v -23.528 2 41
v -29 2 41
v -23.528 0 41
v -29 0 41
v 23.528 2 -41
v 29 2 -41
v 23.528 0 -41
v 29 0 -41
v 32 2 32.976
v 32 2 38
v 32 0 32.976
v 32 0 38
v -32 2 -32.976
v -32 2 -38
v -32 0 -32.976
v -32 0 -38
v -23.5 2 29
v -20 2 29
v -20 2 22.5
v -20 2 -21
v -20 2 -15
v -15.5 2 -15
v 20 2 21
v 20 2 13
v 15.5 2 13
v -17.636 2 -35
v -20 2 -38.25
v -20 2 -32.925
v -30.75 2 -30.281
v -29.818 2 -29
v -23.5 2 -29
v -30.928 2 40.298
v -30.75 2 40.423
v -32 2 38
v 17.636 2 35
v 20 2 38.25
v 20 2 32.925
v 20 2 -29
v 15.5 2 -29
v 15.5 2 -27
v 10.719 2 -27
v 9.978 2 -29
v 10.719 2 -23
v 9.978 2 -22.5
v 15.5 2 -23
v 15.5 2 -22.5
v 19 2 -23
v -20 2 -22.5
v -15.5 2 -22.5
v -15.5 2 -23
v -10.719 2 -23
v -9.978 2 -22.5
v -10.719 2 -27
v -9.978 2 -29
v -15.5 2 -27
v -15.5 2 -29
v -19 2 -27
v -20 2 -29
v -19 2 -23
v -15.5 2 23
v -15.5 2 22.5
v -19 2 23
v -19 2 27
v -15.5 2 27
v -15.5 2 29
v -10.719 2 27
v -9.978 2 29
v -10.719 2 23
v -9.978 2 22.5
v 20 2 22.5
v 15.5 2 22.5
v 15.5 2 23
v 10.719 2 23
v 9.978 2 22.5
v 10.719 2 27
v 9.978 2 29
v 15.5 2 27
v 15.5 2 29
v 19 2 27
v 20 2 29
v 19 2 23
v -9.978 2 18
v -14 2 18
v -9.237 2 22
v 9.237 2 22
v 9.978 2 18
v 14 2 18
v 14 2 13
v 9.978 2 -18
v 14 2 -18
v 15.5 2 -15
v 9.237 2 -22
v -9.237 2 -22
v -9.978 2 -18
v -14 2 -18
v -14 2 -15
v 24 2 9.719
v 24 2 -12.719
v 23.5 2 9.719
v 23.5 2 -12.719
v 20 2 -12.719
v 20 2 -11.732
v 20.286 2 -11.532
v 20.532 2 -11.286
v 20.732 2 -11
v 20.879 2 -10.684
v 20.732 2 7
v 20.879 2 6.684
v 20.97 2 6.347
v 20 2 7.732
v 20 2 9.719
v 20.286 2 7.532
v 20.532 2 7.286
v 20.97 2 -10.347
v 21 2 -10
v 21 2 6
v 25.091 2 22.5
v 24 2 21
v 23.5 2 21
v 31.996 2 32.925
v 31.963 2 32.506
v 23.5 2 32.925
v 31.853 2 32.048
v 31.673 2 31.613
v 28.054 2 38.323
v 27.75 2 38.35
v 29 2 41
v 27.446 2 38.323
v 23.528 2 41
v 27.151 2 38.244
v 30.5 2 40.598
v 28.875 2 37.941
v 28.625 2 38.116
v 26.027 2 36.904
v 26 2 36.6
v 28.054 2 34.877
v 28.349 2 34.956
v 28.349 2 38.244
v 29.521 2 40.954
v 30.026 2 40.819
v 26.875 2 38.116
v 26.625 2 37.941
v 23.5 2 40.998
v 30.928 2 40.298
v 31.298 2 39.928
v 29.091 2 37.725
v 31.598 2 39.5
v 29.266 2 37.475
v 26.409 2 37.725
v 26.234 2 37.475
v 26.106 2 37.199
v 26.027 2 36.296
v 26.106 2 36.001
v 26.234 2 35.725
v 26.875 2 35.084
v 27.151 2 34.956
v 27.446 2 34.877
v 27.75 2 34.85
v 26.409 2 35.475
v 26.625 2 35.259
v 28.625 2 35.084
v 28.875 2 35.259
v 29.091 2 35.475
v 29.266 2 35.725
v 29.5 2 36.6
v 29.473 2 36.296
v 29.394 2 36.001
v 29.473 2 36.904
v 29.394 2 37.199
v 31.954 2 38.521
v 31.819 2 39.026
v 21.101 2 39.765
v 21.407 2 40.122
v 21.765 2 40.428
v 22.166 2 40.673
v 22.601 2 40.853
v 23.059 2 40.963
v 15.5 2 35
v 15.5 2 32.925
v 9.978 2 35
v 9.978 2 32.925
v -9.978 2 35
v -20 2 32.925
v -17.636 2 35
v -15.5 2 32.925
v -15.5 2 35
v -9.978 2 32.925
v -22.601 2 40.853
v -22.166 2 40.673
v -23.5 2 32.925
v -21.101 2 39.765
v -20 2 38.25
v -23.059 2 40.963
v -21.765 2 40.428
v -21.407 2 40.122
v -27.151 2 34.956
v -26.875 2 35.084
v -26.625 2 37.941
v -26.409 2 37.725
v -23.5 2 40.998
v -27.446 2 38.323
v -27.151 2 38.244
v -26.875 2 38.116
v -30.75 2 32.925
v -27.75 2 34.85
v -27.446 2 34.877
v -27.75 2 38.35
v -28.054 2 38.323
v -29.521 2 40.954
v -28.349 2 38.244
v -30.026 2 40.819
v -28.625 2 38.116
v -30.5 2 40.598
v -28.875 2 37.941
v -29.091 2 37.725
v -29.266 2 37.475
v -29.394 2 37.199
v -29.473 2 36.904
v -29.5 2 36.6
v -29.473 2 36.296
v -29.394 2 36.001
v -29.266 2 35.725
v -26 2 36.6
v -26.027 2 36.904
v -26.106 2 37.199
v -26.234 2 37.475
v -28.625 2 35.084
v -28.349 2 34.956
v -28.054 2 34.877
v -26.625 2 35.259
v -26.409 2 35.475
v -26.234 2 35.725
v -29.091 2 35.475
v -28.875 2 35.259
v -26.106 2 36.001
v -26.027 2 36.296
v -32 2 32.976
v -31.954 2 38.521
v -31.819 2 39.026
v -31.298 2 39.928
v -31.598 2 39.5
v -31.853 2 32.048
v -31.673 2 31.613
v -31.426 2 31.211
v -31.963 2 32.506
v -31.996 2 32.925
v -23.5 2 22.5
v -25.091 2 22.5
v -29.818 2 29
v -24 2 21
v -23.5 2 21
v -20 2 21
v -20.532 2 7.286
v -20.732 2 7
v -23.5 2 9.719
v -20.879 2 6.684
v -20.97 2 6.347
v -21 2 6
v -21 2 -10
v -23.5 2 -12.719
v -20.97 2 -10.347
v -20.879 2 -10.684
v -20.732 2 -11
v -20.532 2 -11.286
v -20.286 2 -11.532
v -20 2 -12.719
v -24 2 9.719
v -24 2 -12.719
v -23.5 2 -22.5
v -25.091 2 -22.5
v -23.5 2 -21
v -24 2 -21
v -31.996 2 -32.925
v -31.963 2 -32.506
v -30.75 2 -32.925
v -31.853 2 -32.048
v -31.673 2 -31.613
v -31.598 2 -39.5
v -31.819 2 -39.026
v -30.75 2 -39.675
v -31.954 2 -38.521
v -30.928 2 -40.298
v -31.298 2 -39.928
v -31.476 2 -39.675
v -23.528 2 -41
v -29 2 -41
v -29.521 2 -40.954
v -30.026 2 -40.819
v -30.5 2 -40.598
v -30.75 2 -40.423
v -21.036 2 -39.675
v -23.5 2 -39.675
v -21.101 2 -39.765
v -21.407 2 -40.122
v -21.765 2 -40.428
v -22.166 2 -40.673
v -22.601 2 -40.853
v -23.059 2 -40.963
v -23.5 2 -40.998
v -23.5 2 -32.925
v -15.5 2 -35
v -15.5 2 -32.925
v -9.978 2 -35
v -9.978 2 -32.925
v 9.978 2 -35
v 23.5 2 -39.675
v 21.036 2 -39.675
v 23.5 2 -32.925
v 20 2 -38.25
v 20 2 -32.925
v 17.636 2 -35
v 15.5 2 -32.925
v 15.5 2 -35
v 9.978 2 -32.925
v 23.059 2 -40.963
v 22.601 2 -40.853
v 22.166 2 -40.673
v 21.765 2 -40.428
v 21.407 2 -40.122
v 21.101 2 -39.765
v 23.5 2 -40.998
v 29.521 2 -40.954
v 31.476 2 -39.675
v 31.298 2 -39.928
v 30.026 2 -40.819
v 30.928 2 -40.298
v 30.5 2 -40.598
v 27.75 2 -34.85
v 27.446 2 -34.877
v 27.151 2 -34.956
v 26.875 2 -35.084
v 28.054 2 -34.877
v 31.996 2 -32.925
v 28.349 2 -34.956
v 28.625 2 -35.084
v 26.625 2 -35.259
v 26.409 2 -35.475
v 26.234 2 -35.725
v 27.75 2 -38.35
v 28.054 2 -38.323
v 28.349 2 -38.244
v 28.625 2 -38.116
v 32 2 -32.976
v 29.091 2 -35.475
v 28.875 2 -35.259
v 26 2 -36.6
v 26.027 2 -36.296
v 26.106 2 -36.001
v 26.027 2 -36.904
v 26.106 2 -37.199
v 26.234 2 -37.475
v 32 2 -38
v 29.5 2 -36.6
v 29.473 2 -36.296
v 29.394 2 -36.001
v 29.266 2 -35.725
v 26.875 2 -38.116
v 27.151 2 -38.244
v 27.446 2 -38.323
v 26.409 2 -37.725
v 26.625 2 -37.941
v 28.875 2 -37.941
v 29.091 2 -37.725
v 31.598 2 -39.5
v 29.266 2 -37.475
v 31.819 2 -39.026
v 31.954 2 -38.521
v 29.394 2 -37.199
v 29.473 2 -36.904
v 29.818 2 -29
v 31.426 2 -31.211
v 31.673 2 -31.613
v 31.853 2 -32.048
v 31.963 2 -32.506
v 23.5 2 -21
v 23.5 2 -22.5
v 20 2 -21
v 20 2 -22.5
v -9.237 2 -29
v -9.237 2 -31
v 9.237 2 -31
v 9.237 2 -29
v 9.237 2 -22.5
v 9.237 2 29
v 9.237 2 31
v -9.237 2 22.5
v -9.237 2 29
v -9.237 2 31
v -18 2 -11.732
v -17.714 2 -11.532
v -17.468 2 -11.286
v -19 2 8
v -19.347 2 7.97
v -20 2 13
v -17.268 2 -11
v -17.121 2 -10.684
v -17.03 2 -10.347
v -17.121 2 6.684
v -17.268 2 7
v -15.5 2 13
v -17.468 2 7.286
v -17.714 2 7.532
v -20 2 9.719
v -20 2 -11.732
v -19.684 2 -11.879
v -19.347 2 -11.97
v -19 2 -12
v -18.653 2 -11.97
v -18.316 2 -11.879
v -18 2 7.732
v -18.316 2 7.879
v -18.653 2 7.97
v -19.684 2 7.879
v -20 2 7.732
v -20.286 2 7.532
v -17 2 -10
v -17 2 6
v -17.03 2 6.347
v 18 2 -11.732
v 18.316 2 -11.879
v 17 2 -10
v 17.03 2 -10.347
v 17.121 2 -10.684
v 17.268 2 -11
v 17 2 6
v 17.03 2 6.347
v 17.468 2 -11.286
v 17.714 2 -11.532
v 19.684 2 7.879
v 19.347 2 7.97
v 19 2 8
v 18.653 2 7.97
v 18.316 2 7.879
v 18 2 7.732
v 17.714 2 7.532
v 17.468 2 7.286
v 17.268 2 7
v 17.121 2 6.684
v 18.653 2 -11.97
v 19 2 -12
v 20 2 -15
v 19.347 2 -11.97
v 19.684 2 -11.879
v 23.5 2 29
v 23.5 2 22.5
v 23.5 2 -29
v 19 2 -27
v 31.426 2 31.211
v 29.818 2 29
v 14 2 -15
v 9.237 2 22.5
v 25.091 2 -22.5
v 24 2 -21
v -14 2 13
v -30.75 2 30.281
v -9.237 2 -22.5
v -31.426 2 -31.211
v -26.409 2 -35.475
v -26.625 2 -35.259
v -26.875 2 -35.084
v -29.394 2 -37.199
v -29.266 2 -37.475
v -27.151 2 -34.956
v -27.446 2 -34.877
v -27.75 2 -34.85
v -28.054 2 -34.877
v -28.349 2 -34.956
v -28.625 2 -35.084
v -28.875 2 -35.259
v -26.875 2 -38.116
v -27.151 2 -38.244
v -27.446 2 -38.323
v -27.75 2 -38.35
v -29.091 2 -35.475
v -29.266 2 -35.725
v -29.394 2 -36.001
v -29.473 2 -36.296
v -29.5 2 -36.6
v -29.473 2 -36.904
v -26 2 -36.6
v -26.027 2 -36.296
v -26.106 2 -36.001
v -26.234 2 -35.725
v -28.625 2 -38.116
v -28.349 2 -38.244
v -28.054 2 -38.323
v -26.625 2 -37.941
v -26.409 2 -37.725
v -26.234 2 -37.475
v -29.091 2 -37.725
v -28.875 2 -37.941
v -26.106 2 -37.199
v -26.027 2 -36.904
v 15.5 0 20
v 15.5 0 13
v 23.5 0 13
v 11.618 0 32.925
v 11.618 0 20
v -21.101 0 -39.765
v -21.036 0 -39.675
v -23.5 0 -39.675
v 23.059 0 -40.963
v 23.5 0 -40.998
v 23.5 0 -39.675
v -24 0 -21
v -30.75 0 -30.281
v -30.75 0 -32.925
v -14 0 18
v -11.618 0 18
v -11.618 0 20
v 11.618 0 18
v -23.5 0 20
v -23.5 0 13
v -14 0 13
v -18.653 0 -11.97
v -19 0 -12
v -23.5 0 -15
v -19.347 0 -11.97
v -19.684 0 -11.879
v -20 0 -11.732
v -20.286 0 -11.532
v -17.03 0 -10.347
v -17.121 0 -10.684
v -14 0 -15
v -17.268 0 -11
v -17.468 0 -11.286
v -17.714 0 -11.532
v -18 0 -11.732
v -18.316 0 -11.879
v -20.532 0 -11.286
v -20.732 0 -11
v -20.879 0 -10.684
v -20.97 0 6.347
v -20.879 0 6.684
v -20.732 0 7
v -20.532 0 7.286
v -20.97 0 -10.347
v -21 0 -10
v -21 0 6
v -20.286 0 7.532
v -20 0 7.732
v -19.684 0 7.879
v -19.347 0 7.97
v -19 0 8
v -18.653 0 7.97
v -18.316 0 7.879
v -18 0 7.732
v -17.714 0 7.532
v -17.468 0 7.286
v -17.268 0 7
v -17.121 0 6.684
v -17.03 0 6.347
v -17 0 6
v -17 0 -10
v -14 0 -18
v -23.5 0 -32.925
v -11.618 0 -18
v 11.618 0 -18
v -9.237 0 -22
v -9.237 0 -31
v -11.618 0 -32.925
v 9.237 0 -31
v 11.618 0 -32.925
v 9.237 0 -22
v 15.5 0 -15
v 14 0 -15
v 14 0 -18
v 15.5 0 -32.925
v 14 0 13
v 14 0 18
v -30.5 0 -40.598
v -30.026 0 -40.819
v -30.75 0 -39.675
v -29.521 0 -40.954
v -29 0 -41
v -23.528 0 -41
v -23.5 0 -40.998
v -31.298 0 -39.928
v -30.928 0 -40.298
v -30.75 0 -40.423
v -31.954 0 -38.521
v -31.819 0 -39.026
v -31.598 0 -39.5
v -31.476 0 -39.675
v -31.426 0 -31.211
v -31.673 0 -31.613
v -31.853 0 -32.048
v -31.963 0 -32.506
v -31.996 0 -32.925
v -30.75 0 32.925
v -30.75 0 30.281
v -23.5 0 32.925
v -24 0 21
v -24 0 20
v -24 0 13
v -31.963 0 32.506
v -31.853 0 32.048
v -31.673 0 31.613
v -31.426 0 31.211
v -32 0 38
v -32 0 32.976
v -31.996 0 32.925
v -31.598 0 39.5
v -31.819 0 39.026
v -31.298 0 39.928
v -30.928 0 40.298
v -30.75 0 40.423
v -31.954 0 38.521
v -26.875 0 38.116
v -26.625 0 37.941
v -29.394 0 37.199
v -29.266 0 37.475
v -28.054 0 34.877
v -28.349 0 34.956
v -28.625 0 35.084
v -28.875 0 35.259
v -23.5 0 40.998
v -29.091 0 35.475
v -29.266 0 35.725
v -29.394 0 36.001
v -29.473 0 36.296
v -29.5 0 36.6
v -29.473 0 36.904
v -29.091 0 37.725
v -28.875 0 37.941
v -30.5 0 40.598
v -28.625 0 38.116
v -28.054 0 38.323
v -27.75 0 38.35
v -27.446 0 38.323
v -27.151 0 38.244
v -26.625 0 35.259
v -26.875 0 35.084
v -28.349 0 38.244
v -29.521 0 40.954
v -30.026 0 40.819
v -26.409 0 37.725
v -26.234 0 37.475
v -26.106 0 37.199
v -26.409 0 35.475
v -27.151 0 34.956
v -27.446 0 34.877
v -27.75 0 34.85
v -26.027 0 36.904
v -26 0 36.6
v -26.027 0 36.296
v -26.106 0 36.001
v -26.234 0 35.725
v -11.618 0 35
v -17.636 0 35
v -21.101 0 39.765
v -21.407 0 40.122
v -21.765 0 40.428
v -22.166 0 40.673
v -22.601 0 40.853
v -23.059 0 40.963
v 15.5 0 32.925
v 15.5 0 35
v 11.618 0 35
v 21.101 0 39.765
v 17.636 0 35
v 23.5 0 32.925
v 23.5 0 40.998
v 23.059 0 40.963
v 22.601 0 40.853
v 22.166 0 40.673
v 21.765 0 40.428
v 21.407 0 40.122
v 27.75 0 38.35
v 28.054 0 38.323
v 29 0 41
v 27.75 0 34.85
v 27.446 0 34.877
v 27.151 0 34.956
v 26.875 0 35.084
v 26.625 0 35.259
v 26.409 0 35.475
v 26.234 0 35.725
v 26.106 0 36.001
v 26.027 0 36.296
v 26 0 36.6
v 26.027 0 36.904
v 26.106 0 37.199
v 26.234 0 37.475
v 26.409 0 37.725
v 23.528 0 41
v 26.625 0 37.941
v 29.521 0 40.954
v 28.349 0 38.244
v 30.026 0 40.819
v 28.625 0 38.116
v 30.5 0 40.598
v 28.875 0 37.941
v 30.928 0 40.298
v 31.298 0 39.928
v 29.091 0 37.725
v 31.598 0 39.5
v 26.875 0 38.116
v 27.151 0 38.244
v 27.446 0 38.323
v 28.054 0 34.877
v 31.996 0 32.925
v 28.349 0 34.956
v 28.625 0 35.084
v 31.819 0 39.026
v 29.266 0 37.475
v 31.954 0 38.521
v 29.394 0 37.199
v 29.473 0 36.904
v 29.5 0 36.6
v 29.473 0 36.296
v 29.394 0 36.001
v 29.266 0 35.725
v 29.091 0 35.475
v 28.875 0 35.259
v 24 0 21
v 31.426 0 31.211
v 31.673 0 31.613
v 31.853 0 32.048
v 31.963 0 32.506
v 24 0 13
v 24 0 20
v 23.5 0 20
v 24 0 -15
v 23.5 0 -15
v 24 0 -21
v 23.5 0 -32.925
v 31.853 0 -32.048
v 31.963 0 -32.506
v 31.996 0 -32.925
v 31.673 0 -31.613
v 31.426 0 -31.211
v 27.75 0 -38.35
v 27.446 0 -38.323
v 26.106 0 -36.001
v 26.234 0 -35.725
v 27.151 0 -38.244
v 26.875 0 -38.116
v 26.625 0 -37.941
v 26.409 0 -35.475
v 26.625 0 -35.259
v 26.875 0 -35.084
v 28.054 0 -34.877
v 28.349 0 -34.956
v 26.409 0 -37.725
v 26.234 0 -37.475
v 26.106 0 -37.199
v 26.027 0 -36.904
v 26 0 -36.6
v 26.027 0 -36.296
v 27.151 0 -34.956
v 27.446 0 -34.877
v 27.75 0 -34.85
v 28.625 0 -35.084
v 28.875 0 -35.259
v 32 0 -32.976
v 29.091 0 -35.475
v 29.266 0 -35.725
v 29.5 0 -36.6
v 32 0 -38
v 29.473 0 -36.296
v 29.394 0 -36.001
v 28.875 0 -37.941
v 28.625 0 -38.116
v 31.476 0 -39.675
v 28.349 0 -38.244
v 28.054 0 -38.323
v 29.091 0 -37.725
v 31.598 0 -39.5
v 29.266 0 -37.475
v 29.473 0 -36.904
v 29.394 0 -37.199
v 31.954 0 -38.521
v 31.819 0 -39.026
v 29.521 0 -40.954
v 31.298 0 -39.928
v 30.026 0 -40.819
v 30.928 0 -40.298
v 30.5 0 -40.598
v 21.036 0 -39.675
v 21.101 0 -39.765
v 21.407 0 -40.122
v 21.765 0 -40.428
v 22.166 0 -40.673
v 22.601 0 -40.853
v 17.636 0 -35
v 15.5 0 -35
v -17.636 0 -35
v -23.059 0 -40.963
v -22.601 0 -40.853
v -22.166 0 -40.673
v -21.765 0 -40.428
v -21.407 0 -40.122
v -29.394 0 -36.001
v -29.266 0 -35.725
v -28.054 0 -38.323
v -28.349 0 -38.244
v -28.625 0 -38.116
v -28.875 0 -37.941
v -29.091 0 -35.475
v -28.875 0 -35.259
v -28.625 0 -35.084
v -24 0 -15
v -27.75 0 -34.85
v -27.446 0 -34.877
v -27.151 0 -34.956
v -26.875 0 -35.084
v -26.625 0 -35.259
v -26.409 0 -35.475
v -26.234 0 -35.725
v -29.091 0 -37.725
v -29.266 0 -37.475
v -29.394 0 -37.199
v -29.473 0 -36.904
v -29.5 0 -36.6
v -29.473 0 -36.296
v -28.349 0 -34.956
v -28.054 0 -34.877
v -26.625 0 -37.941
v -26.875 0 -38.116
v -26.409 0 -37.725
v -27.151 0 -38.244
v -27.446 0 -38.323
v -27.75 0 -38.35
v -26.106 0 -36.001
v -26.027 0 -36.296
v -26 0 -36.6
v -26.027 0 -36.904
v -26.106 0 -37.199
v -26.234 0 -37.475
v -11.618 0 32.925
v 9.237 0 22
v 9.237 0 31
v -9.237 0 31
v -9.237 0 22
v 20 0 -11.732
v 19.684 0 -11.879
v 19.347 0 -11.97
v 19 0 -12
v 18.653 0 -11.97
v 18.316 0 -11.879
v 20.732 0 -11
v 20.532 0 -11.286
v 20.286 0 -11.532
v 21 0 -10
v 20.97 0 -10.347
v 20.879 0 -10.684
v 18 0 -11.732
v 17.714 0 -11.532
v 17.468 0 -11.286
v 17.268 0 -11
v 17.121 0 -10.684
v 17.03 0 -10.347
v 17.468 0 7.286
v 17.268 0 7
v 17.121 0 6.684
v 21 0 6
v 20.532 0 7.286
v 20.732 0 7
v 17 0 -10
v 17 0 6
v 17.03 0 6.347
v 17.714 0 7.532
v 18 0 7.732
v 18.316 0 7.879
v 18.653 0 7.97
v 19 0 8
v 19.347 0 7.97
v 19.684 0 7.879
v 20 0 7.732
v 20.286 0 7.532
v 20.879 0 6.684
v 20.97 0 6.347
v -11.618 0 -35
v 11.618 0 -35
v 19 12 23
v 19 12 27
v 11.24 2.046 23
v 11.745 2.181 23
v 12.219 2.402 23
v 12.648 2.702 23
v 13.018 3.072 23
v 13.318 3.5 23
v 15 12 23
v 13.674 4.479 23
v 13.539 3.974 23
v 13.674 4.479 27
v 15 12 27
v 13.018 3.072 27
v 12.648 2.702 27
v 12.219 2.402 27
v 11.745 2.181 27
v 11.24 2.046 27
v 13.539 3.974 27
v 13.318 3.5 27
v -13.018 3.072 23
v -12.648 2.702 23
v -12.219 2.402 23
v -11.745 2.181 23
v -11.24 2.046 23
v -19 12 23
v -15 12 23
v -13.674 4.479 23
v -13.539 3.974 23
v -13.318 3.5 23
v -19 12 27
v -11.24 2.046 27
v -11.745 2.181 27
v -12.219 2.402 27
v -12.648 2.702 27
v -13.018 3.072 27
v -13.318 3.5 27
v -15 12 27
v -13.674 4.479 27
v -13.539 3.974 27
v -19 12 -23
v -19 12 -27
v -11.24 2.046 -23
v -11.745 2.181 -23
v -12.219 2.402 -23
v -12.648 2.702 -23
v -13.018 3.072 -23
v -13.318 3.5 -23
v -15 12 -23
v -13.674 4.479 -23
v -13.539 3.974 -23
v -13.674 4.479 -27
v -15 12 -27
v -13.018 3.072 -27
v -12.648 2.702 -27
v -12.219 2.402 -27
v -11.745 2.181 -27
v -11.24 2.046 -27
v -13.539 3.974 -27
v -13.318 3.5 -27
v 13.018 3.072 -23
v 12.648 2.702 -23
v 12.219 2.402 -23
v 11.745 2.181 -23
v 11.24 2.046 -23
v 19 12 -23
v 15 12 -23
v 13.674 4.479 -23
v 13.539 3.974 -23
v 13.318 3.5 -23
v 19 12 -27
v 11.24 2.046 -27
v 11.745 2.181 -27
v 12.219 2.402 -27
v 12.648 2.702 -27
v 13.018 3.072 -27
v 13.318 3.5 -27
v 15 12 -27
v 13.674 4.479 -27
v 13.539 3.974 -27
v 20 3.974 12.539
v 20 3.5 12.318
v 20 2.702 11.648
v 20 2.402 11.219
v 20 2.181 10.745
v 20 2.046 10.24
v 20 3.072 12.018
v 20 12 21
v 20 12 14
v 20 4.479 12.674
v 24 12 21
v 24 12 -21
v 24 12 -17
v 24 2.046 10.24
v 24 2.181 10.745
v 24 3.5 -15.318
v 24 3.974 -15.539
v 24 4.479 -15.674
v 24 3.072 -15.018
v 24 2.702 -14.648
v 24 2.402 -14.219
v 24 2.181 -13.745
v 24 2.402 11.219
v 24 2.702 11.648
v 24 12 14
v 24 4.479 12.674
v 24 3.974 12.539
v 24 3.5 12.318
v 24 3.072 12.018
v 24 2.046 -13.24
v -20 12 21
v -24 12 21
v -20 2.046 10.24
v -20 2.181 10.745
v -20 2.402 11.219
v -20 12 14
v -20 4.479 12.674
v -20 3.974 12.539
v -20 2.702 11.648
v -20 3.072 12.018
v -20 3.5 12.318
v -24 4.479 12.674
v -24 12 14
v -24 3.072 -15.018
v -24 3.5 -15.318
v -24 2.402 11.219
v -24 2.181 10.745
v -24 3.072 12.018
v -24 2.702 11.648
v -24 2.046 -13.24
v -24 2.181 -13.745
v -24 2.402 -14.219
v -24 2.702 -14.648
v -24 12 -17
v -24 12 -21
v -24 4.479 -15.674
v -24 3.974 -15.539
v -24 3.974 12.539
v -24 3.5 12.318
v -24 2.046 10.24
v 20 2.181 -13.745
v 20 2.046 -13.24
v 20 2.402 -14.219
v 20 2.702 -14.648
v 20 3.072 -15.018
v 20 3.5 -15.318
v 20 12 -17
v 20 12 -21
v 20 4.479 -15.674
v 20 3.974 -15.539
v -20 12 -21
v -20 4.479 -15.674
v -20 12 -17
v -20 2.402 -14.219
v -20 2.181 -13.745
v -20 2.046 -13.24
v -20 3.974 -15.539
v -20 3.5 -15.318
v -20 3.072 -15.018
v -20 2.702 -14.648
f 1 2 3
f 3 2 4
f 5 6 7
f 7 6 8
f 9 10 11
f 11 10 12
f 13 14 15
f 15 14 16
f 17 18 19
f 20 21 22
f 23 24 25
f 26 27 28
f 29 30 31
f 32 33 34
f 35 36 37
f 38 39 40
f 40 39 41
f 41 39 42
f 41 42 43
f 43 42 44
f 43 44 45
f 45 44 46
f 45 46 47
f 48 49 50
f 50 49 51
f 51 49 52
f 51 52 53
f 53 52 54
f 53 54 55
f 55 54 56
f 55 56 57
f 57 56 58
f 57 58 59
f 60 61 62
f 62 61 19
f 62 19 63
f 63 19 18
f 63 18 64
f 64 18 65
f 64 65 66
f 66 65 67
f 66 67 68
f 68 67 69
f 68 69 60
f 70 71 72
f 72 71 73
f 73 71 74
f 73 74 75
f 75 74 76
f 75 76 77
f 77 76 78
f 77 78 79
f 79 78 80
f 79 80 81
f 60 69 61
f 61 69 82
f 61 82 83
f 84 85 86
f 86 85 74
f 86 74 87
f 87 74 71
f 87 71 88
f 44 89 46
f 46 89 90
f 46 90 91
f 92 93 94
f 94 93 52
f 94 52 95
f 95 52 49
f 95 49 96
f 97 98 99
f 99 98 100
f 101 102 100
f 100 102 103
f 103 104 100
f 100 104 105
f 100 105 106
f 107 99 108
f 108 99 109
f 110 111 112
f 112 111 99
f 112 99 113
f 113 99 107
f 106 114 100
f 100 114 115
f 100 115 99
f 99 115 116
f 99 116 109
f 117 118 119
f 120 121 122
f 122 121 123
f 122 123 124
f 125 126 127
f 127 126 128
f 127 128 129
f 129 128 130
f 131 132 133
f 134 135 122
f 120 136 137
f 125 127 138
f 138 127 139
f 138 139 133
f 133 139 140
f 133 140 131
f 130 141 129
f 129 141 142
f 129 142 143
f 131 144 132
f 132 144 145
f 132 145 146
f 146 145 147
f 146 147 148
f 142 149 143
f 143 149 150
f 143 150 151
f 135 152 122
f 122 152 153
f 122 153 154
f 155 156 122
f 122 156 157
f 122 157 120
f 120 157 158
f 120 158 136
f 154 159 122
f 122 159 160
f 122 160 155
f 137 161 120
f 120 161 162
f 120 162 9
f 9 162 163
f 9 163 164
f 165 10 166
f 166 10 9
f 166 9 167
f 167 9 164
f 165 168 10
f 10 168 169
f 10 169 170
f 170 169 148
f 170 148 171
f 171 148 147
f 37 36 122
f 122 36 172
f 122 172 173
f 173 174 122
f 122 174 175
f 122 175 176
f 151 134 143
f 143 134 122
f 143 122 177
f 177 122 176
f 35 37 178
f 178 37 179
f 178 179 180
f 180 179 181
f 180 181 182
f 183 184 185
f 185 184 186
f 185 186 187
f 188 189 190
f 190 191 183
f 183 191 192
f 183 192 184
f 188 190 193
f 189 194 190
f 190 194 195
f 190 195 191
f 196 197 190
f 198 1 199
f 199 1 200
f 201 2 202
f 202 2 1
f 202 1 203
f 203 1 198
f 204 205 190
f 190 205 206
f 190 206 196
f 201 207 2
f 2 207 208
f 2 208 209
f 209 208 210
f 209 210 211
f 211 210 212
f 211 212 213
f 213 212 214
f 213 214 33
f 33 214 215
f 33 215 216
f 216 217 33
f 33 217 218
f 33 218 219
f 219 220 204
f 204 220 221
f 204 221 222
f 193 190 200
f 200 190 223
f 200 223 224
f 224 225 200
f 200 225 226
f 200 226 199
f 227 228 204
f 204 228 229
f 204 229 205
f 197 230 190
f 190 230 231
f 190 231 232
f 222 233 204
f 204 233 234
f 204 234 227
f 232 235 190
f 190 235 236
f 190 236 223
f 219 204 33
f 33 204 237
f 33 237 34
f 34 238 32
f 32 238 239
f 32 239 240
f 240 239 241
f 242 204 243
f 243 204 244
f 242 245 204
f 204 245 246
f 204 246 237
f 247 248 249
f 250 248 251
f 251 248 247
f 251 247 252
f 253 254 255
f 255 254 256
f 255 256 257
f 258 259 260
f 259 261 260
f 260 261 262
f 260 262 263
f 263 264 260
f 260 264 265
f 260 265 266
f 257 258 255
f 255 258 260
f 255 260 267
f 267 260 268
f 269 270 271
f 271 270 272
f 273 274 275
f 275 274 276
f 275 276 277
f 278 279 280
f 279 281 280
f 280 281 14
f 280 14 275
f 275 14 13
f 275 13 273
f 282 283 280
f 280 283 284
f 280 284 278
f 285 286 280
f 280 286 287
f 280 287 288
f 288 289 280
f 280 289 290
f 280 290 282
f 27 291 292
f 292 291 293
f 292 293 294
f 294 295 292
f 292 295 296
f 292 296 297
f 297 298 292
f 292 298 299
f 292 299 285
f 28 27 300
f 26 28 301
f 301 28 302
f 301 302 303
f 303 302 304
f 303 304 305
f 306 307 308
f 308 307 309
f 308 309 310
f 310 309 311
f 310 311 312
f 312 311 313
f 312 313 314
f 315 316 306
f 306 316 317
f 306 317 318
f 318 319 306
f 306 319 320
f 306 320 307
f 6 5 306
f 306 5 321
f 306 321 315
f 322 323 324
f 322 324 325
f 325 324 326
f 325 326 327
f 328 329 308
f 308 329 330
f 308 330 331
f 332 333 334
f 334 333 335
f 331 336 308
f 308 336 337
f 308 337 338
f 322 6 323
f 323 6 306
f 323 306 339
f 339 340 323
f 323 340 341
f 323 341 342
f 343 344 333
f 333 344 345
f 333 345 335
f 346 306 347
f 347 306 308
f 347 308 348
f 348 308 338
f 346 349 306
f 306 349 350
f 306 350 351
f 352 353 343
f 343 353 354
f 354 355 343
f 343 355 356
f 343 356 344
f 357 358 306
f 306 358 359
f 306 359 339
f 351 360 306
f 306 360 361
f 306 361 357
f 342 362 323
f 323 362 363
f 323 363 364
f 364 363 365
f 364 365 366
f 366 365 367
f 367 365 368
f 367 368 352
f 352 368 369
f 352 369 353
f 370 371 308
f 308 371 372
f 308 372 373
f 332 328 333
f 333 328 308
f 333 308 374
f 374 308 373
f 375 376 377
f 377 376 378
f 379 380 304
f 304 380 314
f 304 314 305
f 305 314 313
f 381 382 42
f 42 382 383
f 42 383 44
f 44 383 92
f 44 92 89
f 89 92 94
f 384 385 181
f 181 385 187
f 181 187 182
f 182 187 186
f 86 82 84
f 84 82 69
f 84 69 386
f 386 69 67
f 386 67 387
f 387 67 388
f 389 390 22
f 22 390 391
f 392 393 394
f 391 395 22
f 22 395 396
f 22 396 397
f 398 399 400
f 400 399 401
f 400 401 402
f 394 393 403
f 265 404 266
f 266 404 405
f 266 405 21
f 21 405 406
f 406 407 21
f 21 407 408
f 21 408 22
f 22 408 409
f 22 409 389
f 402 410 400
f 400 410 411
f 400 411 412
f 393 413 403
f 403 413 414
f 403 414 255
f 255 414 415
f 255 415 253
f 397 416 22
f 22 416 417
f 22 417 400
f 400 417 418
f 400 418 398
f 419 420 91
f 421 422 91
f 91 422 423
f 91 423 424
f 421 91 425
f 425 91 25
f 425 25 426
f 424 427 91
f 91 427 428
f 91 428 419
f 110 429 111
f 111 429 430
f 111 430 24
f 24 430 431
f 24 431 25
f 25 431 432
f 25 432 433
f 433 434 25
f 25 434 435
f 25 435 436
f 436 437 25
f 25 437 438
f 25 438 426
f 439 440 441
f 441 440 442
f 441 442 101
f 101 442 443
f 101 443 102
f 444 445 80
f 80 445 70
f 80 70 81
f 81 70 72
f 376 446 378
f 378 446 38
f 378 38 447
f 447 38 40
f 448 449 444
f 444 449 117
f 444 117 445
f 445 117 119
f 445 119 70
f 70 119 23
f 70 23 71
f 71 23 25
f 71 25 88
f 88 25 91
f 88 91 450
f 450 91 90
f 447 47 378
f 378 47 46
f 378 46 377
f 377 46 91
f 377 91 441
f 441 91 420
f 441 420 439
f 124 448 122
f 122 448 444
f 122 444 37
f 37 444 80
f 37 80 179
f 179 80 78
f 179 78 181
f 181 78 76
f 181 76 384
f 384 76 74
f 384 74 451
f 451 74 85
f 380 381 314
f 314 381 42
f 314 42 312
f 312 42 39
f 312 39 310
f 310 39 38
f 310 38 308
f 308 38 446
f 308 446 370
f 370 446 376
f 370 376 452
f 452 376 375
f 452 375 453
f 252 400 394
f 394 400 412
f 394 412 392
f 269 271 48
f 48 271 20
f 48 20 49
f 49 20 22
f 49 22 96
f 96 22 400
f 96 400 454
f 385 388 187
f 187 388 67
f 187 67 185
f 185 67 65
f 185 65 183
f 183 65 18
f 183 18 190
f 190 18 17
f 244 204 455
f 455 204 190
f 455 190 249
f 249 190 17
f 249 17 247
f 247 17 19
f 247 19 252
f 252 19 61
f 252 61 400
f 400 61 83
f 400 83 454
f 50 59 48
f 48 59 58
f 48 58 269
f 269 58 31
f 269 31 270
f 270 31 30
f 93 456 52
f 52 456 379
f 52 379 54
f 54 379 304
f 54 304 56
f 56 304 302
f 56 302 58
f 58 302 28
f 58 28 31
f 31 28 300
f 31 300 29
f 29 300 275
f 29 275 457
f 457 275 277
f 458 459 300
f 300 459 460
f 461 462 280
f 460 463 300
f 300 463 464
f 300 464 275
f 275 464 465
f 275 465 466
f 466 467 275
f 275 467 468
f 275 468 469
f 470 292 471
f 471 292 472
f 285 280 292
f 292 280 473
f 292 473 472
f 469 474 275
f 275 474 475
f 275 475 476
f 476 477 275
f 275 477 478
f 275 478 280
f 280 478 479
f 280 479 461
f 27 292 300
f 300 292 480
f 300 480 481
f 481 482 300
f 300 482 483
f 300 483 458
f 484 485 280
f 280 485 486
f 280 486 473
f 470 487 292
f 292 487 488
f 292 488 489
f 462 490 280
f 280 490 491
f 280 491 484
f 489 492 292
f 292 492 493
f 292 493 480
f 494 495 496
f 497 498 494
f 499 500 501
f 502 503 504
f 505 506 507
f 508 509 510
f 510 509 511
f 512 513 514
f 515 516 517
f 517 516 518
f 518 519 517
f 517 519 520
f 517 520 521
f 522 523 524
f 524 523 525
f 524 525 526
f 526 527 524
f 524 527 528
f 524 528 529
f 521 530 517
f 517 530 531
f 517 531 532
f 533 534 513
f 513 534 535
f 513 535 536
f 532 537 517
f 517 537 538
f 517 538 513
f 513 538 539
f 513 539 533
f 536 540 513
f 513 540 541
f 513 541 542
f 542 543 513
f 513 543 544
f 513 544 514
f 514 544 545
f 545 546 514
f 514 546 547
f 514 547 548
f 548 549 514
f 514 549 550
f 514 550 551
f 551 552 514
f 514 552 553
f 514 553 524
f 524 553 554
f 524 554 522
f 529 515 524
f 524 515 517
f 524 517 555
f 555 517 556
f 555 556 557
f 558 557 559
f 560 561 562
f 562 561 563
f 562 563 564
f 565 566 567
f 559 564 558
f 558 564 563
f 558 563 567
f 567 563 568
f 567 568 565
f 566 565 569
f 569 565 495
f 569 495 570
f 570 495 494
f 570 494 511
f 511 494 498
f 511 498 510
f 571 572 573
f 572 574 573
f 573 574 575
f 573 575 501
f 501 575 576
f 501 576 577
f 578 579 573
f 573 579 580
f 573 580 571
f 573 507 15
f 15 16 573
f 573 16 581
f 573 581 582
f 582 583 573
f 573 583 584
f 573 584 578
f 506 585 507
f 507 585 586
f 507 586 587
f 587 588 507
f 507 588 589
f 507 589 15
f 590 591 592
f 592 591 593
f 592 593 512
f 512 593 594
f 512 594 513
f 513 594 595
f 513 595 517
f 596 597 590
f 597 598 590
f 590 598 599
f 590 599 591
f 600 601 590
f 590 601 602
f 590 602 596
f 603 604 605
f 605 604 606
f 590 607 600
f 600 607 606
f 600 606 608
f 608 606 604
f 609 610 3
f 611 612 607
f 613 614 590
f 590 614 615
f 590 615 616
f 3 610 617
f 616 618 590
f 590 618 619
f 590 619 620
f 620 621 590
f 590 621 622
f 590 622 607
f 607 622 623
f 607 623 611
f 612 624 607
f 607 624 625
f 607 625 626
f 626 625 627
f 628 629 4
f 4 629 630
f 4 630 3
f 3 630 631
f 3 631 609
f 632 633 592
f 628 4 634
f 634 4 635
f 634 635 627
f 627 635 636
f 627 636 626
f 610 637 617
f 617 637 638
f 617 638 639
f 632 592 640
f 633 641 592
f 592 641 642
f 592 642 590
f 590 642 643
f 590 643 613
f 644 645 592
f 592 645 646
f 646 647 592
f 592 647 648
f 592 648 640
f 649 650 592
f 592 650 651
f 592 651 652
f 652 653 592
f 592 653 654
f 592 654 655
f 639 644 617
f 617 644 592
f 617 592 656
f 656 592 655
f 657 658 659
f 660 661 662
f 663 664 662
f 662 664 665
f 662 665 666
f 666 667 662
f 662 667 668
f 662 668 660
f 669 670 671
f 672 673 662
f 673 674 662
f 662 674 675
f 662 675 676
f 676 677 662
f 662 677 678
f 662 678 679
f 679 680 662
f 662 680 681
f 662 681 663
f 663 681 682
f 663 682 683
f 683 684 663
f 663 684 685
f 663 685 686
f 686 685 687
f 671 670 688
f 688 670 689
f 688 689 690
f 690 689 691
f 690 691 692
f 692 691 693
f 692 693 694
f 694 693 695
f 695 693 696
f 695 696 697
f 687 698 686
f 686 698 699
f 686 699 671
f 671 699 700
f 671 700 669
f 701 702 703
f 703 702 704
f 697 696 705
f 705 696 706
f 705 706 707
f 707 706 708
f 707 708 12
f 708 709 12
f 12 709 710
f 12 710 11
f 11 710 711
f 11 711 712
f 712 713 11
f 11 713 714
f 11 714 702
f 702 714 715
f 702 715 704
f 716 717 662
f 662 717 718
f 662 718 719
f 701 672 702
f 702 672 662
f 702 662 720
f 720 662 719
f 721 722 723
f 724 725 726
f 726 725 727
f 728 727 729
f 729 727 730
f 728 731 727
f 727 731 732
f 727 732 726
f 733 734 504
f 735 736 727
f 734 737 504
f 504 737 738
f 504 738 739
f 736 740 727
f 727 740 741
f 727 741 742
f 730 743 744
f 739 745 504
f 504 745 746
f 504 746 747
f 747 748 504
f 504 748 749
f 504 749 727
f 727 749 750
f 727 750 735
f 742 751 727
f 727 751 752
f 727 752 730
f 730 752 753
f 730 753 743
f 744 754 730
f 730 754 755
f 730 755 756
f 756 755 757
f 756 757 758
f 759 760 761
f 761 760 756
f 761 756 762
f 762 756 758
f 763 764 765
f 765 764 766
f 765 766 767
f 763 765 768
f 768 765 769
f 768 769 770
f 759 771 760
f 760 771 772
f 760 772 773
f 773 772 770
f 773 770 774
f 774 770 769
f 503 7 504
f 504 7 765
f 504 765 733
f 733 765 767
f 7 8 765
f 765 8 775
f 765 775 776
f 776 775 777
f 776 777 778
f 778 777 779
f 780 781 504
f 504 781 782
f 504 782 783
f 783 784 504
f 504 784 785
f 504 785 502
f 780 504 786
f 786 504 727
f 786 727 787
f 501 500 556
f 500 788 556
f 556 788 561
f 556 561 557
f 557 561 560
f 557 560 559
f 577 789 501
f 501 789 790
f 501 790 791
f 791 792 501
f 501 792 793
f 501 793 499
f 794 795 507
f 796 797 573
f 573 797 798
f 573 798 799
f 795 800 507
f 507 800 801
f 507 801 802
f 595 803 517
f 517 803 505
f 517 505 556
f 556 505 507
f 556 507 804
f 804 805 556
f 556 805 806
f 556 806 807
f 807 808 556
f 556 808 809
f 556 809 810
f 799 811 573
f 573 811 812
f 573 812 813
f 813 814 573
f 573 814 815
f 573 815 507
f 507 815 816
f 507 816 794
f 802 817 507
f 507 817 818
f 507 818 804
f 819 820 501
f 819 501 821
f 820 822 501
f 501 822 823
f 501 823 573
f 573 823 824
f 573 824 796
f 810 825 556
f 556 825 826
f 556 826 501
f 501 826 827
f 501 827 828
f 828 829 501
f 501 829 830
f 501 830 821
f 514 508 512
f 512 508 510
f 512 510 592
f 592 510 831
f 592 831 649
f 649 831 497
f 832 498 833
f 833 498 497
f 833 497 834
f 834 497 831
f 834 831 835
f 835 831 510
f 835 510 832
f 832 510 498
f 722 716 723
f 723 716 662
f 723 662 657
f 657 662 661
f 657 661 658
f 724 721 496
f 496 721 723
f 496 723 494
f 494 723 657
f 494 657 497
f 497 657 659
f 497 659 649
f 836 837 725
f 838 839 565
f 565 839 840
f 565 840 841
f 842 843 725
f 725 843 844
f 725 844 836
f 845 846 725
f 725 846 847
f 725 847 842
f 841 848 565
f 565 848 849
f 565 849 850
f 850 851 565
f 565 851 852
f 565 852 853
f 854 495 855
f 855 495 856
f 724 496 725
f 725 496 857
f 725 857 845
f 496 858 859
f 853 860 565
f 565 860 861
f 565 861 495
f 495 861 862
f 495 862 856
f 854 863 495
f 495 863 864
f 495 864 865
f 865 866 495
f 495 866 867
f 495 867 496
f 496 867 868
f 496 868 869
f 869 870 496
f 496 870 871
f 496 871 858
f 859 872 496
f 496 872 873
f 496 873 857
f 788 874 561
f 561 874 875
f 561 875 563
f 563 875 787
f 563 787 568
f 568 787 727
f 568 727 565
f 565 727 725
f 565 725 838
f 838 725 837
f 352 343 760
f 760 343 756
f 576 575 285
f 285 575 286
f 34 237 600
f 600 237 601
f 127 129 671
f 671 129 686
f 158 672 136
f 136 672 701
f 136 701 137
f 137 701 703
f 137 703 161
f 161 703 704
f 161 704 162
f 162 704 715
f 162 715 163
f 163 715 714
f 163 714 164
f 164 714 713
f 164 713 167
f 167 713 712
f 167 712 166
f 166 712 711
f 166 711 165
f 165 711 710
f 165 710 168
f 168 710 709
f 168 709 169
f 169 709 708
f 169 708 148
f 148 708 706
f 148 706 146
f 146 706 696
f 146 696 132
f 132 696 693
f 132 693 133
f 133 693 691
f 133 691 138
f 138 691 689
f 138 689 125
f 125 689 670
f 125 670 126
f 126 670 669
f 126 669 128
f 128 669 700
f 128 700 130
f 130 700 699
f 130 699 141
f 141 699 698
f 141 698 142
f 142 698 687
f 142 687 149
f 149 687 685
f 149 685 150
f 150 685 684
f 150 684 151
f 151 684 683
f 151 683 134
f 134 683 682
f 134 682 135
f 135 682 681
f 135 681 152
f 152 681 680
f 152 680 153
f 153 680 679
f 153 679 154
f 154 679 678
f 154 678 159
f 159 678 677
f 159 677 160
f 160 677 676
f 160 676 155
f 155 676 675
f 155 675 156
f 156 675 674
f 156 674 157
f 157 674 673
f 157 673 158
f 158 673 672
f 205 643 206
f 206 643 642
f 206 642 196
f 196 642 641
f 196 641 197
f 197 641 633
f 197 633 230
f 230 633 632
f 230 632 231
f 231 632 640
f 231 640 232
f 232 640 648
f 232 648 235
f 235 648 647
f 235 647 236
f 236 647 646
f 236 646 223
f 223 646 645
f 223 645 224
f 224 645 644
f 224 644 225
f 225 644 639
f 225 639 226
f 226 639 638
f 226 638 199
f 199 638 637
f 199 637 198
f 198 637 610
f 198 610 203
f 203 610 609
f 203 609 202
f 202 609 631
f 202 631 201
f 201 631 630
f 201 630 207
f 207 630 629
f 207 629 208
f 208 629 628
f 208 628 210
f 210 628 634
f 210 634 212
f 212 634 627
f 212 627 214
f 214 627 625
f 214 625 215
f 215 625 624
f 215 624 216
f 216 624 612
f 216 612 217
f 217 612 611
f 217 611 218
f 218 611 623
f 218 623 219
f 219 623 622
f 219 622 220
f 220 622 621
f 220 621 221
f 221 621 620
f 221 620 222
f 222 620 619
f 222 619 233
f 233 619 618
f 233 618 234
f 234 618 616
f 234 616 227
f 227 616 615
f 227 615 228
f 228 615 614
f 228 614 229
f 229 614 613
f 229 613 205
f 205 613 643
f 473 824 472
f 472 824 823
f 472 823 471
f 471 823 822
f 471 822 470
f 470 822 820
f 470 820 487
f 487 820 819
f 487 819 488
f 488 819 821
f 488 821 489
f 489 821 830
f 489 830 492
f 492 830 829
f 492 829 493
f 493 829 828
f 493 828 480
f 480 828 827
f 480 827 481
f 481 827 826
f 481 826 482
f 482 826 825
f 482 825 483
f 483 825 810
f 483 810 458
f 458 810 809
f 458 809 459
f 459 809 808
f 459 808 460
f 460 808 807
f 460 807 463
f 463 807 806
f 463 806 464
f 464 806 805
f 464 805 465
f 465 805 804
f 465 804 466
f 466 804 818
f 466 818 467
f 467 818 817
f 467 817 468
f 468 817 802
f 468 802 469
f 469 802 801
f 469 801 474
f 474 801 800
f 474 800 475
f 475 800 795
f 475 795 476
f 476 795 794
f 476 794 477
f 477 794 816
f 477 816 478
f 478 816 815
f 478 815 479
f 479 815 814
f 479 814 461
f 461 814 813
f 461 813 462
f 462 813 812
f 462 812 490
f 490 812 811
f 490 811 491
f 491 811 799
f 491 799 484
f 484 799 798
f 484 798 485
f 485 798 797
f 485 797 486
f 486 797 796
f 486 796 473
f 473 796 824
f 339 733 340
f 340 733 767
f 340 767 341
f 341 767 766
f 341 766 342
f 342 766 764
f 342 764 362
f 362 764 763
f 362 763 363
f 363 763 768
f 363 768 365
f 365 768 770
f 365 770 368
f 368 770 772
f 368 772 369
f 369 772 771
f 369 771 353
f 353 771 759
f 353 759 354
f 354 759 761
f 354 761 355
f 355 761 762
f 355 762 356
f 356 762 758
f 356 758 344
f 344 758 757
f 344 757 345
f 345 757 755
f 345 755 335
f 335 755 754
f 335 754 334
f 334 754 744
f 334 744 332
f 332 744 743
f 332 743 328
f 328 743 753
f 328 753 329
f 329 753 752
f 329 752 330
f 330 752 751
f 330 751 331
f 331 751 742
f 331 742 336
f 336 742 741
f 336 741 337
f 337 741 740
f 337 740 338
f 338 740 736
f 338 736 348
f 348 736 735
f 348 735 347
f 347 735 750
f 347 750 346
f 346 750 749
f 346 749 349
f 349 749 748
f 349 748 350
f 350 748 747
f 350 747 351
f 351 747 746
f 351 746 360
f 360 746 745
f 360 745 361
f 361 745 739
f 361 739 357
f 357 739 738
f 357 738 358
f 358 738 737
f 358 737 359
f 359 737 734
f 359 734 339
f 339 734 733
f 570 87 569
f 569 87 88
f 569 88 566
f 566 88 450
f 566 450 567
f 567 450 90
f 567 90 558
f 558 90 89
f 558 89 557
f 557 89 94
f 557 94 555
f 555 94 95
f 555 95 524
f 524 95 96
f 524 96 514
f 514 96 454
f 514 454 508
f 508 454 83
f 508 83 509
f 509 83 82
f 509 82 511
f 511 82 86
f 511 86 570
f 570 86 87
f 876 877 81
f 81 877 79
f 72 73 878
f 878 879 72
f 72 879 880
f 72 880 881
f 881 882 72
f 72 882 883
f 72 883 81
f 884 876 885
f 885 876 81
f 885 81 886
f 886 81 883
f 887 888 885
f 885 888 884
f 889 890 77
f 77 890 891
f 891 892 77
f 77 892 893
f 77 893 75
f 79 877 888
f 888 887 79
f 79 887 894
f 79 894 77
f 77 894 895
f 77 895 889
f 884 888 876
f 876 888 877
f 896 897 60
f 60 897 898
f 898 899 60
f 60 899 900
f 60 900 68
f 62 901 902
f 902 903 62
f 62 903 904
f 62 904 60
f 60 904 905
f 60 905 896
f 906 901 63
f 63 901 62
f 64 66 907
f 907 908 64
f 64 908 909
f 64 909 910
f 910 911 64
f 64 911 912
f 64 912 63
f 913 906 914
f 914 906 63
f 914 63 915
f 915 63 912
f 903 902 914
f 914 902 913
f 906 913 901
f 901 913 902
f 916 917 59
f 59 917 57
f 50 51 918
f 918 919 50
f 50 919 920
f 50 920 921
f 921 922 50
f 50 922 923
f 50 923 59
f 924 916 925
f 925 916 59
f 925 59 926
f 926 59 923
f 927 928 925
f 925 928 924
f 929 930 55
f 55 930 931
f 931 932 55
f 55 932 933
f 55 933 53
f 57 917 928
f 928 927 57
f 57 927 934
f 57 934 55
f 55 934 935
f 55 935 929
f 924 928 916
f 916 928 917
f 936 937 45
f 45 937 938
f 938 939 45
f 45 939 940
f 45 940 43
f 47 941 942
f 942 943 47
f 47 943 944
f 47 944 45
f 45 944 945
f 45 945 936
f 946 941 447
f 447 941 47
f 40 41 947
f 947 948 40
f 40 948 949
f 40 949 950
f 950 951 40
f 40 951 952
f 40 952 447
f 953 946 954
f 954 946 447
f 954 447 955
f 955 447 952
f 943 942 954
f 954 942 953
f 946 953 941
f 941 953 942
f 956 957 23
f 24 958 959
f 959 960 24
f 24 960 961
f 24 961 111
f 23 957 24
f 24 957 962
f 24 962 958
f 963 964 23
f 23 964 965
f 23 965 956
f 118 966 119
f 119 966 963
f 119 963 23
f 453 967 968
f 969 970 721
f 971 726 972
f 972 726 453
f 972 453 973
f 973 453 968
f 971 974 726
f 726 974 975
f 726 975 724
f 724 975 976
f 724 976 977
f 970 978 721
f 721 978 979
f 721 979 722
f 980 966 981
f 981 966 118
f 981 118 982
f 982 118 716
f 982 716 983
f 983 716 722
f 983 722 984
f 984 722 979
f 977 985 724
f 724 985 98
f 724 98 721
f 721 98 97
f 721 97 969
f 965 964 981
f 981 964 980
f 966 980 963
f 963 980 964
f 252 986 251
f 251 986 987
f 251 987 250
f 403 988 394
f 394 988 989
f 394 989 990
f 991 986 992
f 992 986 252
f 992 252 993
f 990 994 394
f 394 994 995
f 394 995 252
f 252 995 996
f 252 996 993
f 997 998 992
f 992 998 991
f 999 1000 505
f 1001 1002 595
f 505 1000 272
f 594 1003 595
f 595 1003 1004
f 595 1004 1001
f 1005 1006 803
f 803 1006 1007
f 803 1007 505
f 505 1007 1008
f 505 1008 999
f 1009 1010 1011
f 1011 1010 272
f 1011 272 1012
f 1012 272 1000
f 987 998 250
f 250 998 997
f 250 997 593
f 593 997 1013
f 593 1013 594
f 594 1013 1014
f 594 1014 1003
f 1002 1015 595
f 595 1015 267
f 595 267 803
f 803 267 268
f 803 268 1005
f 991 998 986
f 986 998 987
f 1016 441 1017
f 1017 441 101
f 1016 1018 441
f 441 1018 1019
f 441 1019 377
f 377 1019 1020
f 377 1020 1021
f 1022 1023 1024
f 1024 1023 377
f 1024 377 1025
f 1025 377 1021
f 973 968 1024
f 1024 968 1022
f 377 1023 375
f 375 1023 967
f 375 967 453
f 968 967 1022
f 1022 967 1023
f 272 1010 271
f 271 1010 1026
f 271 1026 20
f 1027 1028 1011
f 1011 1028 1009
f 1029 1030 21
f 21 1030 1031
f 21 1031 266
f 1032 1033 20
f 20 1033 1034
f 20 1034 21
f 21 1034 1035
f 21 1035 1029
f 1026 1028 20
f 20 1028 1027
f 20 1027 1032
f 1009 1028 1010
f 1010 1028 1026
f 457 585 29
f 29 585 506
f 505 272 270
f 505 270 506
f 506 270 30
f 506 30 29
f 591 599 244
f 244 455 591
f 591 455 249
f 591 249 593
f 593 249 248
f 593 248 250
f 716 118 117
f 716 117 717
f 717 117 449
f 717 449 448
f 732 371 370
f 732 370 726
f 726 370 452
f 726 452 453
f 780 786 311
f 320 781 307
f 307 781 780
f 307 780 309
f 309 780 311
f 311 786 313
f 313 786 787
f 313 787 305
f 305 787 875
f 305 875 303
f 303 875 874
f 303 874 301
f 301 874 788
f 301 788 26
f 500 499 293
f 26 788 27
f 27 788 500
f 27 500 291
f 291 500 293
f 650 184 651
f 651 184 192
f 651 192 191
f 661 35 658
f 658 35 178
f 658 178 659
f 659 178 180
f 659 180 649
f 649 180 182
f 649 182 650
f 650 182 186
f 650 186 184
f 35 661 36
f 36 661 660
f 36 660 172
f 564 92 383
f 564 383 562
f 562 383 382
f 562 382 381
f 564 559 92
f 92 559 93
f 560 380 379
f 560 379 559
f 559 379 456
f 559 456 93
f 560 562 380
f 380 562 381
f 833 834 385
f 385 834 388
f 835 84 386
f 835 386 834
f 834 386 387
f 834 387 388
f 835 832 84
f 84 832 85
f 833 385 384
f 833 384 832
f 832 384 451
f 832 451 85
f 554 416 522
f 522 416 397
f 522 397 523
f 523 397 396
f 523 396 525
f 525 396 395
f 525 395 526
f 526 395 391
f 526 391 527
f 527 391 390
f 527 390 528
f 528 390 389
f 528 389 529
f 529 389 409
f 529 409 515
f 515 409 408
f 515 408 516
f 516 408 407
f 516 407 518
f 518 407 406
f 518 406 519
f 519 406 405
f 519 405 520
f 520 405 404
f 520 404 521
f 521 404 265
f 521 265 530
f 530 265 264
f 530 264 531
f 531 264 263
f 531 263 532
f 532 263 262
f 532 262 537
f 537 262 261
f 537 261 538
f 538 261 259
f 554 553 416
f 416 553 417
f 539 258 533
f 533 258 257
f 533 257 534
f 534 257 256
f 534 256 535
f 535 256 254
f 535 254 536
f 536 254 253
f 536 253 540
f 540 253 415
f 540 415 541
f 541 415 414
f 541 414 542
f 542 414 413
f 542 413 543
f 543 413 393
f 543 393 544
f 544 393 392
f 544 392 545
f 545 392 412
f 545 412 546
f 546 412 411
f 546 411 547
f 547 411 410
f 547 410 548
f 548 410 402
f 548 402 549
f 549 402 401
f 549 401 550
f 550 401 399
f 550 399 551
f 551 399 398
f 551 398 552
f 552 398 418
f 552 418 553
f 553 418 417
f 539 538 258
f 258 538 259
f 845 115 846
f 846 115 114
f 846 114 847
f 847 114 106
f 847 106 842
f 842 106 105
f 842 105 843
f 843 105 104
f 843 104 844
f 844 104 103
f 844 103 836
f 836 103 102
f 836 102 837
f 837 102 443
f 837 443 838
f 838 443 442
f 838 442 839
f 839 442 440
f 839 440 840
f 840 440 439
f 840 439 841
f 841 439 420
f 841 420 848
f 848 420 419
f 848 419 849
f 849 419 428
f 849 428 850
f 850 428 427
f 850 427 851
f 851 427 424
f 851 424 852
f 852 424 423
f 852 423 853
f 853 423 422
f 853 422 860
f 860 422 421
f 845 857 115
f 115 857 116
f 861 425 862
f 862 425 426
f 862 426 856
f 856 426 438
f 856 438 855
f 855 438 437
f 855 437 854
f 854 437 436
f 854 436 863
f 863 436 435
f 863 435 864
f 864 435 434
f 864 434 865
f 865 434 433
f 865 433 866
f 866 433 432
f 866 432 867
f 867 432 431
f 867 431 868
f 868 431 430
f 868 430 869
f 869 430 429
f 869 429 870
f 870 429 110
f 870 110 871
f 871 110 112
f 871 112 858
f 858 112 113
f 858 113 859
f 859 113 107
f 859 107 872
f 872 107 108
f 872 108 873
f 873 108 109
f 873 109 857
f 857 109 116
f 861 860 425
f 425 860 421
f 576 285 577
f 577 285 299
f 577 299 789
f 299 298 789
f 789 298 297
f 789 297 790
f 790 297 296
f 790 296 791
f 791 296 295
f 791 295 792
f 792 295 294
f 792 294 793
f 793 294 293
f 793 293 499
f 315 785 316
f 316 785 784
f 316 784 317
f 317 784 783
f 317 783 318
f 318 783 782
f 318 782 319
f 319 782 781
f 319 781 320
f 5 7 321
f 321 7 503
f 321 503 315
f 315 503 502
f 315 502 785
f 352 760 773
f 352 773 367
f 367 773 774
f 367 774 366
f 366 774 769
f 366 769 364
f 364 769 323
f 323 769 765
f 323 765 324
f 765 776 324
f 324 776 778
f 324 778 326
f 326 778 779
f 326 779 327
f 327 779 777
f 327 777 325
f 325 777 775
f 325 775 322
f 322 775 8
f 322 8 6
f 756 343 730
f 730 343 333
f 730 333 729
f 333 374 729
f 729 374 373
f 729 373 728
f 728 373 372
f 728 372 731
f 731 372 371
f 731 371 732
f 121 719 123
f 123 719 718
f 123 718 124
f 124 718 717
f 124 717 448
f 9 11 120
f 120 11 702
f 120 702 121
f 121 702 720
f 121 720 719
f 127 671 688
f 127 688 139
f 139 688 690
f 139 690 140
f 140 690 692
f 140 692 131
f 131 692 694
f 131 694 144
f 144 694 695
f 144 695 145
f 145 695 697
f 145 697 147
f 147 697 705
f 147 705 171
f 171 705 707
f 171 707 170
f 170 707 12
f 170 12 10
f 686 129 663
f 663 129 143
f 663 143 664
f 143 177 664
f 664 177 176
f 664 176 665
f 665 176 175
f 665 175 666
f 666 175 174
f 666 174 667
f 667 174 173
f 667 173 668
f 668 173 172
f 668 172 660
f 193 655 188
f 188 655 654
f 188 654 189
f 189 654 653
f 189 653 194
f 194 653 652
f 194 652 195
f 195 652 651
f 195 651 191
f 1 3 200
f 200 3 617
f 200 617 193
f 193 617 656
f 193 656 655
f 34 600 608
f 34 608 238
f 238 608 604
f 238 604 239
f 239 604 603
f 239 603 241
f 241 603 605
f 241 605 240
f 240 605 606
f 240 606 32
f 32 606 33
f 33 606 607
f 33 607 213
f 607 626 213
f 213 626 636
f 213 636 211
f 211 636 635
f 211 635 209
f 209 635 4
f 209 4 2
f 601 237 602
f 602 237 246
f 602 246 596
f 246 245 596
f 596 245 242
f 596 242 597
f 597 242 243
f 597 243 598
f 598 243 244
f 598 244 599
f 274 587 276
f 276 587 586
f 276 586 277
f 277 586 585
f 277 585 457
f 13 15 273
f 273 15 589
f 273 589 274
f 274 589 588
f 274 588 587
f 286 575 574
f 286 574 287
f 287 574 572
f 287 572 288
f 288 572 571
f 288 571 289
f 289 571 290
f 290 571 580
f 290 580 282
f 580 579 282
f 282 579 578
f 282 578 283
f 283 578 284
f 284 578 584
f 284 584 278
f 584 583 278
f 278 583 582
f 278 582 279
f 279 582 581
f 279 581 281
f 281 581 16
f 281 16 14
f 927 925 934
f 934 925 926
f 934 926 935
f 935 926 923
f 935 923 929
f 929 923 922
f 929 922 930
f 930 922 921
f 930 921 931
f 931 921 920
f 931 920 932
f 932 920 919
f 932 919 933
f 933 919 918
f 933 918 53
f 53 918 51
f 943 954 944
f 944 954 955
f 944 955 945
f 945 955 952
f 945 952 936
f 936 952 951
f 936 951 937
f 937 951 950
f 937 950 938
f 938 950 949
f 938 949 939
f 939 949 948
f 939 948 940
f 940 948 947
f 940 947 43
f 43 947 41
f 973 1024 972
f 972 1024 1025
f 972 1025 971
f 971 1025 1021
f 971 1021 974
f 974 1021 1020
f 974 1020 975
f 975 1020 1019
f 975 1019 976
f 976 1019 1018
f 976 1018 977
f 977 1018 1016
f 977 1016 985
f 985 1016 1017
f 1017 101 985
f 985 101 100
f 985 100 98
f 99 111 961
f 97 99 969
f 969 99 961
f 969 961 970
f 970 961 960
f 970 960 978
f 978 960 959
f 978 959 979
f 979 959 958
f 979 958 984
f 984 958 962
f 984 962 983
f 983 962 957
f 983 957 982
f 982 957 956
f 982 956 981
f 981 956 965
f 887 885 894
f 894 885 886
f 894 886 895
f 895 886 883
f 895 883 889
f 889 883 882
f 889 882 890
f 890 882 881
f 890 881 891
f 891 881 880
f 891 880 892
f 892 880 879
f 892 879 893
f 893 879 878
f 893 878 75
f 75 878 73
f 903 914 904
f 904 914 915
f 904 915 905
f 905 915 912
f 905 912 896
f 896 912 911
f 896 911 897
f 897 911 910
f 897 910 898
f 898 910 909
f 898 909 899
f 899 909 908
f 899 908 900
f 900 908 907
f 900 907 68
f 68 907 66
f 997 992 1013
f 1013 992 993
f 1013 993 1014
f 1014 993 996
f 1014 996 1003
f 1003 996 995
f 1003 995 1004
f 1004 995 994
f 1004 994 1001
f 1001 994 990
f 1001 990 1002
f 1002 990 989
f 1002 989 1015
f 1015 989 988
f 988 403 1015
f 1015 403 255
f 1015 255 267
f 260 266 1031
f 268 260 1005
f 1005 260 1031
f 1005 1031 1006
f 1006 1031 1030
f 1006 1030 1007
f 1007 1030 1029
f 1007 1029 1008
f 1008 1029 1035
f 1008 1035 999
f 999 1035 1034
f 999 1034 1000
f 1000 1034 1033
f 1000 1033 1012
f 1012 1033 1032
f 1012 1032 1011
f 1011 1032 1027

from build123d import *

# Parameters (mm, degrees)
SKETCH1_W           = 64
SKETCH1_H           = 82
SKETCH1_R           = 1.75
SKETCH1_W_2         = 28
SKETCH1_H_2         = 36
BOSS_EXTRUDE1_DEPTH = 2
SKETCH4_W           = 4
SKETCH4_H           = 4
SKETCH4_H_2         = 7
BOSS_EXTRUDE2_DEPTH = 10
CUT_EXTRUDE1_DEPTH  = 3
DRAFT12_ANGLE       = 10
DRAFT13_ANGLE       = 10
SKETCH6_W           = 18.473460386
SKETCH6_H           = 9
CUT_EXTRUDE2_DEPTH  = 3
FILLET1_R           = 3
FILLET2_R           = 3


with BuildPart() as part:
    # Sketch1 → Boss-Extrude1 (new body)
    with BuildSketch(Plane(origin=(0, 0, 0), x_dir=(1, 0, 0), z_dir=(0, 1, 0))):
        Rectangle(SKETCH1_W, SKETCH1_H)
        with Locations((27.75, -36.6)):
            Circle(SKETCH1_R, mode=Mode.SUBTRACT)
        with Locations((-27.75, -36.6)):
            Circle(SKETCH1_R, mode=Mode.SUBTRACT)
        with Locations((-27.75, 36.6)):
            Circle(SKETCH1_R, mode=Mode.SUBTRACT)
        with Locations((27.75, 36.6)):
            Circle(SKETCH1_R, mode=Mode.SUBTRACT)
        Rectangle(SKETCH1_W_2, SKETCH1_H_2, mode=Mode.SUBTRACT)
    extrude(amount=BOSS_EXTRUDE1_DEPTH)

    # Sketch4 → Boss-Extrude2 (add)
    with BuildSketch(Plane(origin=(0, 2, 0), x_dir=(1, 0, 0), z_dir=(0, 1, 0))):
        with Locations((-17, -25)):
            Rectangle(SKETCH4_W, SKETCH4_H)
        with Locations((17, -25)):
            Rectangle(SKETCH4_W, SKETCH4_H)
        with Locations((-17, 25)):
            Rectangle(SKETCH4_W, SKETCH4_H)
        with Locations((17, 25)):
            Rectangle(SKETCH4_W, SKETCH4_H)
        with Locations((-22, -17.5)):
            Rectangle(SKETCH4_W, SKETCH4_H_2)
        with Locations((22, -17.5)):
            Rectangle(SKETCH4_W, SKETCH4_H_2)
        with Locations((-22, 19)):
            Rectangle(SKETCH4_W, SKETCH4_H)
        with Locations((22, 19)):
            Rectangle(SKETCH4_W, SKETCH4_H)
    extrude(amount=BOSS_EXTRUDE2_DEPTH)

    # Sketch5 → Cut-Extrude1 (cut, through all)
    with BuildSketch(Plane(origin=(0, 2, 0), x_dir=(1, 0, 0), z_dir=(0, 1, 0))):
        Polygon((-32, 32), (-24, 21), (-24, -21), (-32, -32), align=None)
        Polygon((32, -32), (24, -21), (24, 21), (32, 32), align=None)
    extrude(amount=-CUT_EXTRUDE1_DEPTH, mode=Mode.SUBTRACT)

    # Draft12
    draft12_faces = [part.faces().sort_by_distance(p)[0] for p in [
        (22, 7, 14),
        (22, 7, -17),
        (-22, 7, 14),
        (-22, 7, -17),
    ]]
    draft(draft12_faces, Plane.ZX.offset(12), DRAFT12_ANGLE)

    # Draft13
    draft13_faces = [part.faces().sort_by_distance(p)[0] for p in [
        (15, 7, 25),
        (-15, 7, 25),
        (15, 7, -25),
        (-15, 7, -25),
    ]]
    draft(draft13_faces, Plane.ZX.offset(12), DRAFT13_ANGLE)

    # Sketch6 → Cut-Extrude2 (cut, through all)
    with BuildSketch(Plane(origin=(0, 2, 0), x_dir=(1, 0, 0), z_dir=(0, 1, 0))):
        Polygon((-22, 41), (-17.636363636, 35), (17.636363636, 35), (22, 41), align=None)
        with BuildLine():
            Line((17, 10), (17, -6))
            ThreePointArc((17, -6), (19, -8), (21, -6))
            Line((21, -6), (21, 10))
            ThreePointArc((21, 10), (19, 12), (17, 10))
        make_face()
        Polygon((22, -41), (17.636363636, -35), (-17.636363636, -35), (-22, -41), align=None)
        with Locations((0, 26.5)):
            Rectangle(SKETCH6_W, SKETCH6_H)
        with Locations((0, -26.5)):
            Rectangle(SKETCH6_W, SKETCH6_H)
        with BuildLine():
            Line((-17, 10), (-17, -6))
            ThreePointArc((-17, -6), (-19, -8), (-21, -6))
            Line((-21, -6), (-21, 10))
            ThreePointArc((-21, 10), (-19, 12), (-17, 10))
        make_face()
    extrude(amount=-CUT_EXTRUDE2_DEPTH, mode=Mode.SUBTRACT)

    # Fillet1
    fillet1_edges = [part.edges().sort_by_distance(p)[0] for p in [
        (-32, 1, 32),
        (-32, 1, -32),
        (32, 1, -32),
        (32, 1, 32),
        (-22, 1, -41),
        (22, 1, -41),
        (22, 1, 41),
        (-22, 1, 41),
        (32, 1, 41),
        (-32, 1, 41),
        (-32, 1, -41),
        (32, 1, -41),
    ]]
    fillet(fillet1_edges, radius=FILLET1_R)

    # Fillet2
    fillet2_edges = [part.edges().sort_by_distance(p)[0] for p in [
        (-22, 2, 12.236730193),
        (22, 2, -15.236730193),
        (-22, 2, -15.236730193),
        (13.236730193, 2, 25),
        (-13.236730193, 2, 25),
        (-13.236730193, 2, -25),
        (13.236730193, 2, -25),
        (22, 2, 12.236730193),
    ]]
    fillet(fillet2_edges, radius=FILLET2_R)


solid = part.part
